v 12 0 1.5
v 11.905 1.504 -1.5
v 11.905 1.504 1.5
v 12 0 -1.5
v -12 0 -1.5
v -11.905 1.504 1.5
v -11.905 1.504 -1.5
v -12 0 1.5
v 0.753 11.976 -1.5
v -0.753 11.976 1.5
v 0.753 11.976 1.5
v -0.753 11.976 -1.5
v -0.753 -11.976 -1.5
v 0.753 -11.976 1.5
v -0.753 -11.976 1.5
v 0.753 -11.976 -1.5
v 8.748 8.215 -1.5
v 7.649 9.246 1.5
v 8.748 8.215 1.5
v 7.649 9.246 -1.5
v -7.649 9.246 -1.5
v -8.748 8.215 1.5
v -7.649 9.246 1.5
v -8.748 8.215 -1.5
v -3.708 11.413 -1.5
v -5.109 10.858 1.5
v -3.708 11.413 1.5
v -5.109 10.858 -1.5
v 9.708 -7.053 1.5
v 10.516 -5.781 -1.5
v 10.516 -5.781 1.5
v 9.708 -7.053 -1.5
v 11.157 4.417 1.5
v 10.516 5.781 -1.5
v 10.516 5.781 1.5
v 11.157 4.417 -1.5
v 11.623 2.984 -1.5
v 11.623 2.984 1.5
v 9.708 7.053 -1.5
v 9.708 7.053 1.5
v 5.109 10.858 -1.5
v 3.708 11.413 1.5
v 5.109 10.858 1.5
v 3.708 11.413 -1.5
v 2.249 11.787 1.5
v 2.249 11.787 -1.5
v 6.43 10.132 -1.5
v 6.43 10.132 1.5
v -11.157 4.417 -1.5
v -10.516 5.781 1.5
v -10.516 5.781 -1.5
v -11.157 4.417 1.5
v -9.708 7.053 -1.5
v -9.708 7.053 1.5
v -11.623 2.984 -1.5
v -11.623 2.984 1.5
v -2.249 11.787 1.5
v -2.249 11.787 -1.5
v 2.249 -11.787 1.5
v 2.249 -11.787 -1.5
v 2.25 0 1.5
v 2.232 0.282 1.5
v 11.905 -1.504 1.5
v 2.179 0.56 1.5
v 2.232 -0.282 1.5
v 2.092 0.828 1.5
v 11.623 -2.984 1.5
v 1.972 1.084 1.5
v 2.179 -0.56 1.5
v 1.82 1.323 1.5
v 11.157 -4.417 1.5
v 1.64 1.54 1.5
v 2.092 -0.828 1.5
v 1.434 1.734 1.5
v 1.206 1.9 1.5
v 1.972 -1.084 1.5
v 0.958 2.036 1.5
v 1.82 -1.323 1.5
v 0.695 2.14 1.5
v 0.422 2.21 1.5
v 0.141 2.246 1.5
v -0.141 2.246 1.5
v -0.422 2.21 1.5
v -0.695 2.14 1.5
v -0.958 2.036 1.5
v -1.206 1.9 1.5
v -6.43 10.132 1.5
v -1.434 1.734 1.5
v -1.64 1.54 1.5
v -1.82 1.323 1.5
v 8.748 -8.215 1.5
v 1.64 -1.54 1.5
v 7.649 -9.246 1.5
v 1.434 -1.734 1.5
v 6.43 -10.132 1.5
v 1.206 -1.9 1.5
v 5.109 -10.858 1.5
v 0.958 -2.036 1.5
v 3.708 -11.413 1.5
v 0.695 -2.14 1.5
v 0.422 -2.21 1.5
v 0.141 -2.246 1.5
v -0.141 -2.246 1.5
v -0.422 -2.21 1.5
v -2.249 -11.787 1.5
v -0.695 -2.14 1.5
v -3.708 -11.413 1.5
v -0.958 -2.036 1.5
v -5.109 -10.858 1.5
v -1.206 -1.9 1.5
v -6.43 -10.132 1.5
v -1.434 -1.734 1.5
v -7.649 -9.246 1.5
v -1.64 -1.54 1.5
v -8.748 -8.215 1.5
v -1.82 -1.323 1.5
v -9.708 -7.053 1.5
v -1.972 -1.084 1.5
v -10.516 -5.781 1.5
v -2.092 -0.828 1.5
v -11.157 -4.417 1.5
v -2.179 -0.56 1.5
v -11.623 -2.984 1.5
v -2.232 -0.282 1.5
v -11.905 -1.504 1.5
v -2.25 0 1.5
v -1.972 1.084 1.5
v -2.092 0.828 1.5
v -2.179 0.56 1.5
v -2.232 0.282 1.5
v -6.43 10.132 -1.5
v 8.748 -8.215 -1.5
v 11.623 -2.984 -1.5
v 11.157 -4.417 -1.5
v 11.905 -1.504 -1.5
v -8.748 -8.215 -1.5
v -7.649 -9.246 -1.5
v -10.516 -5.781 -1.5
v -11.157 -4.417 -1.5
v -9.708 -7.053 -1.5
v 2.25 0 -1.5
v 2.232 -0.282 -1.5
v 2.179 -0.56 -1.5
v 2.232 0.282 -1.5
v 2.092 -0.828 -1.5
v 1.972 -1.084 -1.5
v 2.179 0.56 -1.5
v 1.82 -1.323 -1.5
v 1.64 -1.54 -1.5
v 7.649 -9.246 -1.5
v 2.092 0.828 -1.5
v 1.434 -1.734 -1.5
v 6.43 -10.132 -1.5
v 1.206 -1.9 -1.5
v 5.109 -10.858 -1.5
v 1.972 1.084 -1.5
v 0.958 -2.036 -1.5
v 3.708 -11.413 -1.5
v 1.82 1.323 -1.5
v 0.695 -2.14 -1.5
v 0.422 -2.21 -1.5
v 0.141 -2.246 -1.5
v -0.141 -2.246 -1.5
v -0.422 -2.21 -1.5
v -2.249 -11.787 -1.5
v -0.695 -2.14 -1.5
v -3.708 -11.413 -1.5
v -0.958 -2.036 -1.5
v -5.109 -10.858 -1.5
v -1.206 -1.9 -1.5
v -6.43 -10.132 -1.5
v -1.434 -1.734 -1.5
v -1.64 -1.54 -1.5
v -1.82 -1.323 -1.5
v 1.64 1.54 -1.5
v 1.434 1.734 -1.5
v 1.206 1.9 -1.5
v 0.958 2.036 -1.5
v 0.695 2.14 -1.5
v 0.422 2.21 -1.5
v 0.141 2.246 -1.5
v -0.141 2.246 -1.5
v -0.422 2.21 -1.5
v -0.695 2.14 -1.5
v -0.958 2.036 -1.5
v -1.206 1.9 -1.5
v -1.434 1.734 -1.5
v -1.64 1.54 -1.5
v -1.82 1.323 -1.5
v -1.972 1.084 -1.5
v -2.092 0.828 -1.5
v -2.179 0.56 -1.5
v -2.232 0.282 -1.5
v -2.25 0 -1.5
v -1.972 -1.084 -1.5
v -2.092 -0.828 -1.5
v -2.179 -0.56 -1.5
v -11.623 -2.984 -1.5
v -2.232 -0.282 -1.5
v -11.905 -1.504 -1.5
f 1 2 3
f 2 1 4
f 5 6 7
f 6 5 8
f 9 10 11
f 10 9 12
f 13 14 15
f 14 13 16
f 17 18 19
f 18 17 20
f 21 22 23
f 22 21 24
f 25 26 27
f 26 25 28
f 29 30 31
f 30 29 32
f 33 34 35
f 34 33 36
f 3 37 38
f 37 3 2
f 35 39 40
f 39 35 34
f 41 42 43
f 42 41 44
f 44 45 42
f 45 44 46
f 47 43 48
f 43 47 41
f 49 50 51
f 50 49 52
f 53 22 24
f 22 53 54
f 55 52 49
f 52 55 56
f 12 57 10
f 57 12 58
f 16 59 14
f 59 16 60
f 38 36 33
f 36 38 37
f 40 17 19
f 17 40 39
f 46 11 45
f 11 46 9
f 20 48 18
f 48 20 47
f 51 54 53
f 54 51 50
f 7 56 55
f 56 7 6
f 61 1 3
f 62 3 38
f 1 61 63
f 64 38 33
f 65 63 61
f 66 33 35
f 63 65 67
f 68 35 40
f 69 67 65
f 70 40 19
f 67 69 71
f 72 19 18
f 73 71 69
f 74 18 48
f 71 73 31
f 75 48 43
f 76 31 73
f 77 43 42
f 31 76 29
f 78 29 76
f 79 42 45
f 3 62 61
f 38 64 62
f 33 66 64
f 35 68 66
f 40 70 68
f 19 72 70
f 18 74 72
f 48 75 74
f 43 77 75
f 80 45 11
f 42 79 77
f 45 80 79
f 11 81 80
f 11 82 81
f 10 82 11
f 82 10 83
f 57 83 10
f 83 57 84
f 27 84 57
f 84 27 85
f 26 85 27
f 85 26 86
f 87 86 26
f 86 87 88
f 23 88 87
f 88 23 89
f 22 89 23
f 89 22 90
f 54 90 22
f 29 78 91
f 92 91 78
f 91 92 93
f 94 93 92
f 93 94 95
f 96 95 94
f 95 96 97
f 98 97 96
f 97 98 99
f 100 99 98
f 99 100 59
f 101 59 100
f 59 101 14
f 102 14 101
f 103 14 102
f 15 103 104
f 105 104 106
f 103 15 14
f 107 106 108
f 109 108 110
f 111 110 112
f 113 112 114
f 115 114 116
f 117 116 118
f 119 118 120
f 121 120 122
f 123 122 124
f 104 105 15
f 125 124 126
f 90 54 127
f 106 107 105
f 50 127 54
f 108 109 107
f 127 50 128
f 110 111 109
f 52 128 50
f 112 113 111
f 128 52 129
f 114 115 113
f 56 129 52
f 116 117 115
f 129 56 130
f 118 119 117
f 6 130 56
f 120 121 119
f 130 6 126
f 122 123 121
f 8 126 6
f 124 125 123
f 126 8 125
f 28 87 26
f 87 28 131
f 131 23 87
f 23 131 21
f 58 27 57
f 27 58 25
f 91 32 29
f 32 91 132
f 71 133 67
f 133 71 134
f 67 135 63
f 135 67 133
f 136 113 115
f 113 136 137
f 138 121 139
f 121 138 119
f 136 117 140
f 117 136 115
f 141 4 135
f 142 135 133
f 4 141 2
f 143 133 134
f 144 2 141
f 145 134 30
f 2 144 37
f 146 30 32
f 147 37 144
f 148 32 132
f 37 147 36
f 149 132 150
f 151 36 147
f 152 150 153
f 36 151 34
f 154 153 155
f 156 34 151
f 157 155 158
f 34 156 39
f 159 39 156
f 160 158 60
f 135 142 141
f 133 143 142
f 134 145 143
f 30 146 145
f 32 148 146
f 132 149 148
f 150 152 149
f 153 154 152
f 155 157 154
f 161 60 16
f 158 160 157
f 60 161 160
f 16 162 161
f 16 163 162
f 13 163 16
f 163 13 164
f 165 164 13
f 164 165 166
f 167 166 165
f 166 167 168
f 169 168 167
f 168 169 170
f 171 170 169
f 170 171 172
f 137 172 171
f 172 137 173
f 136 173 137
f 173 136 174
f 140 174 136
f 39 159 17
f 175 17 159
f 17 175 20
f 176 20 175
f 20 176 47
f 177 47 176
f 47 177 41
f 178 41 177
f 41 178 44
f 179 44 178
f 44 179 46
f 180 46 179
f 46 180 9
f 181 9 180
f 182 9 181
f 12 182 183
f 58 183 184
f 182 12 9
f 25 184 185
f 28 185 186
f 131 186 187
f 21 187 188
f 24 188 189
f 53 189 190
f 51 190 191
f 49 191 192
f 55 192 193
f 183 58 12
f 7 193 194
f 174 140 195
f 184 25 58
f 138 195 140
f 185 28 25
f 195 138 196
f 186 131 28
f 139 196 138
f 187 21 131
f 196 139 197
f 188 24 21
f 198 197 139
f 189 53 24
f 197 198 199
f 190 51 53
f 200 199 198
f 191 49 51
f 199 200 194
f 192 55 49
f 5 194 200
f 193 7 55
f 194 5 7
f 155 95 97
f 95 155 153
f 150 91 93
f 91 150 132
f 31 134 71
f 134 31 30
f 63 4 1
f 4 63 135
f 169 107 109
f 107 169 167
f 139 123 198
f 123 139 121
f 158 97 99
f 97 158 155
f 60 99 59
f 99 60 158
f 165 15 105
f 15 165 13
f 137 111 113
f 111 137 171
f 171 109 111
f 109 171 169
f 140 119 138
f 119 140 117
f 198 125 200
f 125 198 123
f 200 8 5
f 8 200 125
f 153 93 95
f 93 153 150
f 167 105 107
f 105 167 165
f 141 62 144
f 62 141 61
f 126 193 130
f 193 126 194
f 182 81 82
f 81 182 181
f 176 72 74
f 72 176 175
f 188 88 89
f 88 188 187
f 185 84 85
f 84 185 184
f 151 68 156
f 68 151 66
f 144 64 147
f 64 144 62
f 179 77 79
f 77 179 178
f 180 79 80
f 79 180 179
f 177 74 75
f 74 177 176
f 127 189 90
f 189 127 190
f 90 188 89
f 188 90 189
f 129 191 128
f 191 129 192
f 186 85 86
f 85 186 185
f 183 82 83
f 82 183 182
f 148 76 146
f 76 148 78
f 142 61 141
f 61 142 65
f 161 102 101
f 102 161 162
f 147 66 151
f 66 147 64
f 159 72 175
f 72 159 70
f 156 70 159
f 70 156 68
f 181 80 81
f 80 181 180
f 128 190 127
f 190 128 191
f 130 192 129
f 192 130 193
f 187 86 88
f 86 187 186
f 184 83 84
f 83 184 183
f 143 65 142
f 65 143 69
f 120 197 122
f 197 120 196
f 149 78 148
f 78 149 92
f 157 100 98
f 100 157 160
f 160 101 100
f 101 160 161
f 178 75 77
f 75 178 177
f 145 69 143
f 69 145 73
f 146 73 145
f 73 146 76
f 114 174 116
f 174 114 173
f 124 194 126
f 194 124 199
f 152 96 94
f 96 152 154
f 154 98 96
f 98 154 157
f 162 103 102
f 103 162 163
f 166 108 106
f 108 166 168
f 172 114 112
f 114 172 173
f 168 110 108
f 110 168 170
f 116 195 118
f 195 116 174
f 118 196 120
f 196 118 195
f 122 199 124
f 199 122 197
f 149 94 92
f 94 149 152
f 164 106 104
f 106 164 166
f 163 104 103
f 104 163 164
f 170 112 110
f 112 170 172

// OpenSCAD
$fn = 50;


difference() {
	union() {
		translate(v = [0, 0, -1.5000000000]) {
			cylinder(h = 3, r = 12.0000000000);
		}
	}
	union() {
		translate(v = [0, 0, -100.0000000000]) {
			cylinder(h = 200, r = 2.2500000000);
		}
	}
}
